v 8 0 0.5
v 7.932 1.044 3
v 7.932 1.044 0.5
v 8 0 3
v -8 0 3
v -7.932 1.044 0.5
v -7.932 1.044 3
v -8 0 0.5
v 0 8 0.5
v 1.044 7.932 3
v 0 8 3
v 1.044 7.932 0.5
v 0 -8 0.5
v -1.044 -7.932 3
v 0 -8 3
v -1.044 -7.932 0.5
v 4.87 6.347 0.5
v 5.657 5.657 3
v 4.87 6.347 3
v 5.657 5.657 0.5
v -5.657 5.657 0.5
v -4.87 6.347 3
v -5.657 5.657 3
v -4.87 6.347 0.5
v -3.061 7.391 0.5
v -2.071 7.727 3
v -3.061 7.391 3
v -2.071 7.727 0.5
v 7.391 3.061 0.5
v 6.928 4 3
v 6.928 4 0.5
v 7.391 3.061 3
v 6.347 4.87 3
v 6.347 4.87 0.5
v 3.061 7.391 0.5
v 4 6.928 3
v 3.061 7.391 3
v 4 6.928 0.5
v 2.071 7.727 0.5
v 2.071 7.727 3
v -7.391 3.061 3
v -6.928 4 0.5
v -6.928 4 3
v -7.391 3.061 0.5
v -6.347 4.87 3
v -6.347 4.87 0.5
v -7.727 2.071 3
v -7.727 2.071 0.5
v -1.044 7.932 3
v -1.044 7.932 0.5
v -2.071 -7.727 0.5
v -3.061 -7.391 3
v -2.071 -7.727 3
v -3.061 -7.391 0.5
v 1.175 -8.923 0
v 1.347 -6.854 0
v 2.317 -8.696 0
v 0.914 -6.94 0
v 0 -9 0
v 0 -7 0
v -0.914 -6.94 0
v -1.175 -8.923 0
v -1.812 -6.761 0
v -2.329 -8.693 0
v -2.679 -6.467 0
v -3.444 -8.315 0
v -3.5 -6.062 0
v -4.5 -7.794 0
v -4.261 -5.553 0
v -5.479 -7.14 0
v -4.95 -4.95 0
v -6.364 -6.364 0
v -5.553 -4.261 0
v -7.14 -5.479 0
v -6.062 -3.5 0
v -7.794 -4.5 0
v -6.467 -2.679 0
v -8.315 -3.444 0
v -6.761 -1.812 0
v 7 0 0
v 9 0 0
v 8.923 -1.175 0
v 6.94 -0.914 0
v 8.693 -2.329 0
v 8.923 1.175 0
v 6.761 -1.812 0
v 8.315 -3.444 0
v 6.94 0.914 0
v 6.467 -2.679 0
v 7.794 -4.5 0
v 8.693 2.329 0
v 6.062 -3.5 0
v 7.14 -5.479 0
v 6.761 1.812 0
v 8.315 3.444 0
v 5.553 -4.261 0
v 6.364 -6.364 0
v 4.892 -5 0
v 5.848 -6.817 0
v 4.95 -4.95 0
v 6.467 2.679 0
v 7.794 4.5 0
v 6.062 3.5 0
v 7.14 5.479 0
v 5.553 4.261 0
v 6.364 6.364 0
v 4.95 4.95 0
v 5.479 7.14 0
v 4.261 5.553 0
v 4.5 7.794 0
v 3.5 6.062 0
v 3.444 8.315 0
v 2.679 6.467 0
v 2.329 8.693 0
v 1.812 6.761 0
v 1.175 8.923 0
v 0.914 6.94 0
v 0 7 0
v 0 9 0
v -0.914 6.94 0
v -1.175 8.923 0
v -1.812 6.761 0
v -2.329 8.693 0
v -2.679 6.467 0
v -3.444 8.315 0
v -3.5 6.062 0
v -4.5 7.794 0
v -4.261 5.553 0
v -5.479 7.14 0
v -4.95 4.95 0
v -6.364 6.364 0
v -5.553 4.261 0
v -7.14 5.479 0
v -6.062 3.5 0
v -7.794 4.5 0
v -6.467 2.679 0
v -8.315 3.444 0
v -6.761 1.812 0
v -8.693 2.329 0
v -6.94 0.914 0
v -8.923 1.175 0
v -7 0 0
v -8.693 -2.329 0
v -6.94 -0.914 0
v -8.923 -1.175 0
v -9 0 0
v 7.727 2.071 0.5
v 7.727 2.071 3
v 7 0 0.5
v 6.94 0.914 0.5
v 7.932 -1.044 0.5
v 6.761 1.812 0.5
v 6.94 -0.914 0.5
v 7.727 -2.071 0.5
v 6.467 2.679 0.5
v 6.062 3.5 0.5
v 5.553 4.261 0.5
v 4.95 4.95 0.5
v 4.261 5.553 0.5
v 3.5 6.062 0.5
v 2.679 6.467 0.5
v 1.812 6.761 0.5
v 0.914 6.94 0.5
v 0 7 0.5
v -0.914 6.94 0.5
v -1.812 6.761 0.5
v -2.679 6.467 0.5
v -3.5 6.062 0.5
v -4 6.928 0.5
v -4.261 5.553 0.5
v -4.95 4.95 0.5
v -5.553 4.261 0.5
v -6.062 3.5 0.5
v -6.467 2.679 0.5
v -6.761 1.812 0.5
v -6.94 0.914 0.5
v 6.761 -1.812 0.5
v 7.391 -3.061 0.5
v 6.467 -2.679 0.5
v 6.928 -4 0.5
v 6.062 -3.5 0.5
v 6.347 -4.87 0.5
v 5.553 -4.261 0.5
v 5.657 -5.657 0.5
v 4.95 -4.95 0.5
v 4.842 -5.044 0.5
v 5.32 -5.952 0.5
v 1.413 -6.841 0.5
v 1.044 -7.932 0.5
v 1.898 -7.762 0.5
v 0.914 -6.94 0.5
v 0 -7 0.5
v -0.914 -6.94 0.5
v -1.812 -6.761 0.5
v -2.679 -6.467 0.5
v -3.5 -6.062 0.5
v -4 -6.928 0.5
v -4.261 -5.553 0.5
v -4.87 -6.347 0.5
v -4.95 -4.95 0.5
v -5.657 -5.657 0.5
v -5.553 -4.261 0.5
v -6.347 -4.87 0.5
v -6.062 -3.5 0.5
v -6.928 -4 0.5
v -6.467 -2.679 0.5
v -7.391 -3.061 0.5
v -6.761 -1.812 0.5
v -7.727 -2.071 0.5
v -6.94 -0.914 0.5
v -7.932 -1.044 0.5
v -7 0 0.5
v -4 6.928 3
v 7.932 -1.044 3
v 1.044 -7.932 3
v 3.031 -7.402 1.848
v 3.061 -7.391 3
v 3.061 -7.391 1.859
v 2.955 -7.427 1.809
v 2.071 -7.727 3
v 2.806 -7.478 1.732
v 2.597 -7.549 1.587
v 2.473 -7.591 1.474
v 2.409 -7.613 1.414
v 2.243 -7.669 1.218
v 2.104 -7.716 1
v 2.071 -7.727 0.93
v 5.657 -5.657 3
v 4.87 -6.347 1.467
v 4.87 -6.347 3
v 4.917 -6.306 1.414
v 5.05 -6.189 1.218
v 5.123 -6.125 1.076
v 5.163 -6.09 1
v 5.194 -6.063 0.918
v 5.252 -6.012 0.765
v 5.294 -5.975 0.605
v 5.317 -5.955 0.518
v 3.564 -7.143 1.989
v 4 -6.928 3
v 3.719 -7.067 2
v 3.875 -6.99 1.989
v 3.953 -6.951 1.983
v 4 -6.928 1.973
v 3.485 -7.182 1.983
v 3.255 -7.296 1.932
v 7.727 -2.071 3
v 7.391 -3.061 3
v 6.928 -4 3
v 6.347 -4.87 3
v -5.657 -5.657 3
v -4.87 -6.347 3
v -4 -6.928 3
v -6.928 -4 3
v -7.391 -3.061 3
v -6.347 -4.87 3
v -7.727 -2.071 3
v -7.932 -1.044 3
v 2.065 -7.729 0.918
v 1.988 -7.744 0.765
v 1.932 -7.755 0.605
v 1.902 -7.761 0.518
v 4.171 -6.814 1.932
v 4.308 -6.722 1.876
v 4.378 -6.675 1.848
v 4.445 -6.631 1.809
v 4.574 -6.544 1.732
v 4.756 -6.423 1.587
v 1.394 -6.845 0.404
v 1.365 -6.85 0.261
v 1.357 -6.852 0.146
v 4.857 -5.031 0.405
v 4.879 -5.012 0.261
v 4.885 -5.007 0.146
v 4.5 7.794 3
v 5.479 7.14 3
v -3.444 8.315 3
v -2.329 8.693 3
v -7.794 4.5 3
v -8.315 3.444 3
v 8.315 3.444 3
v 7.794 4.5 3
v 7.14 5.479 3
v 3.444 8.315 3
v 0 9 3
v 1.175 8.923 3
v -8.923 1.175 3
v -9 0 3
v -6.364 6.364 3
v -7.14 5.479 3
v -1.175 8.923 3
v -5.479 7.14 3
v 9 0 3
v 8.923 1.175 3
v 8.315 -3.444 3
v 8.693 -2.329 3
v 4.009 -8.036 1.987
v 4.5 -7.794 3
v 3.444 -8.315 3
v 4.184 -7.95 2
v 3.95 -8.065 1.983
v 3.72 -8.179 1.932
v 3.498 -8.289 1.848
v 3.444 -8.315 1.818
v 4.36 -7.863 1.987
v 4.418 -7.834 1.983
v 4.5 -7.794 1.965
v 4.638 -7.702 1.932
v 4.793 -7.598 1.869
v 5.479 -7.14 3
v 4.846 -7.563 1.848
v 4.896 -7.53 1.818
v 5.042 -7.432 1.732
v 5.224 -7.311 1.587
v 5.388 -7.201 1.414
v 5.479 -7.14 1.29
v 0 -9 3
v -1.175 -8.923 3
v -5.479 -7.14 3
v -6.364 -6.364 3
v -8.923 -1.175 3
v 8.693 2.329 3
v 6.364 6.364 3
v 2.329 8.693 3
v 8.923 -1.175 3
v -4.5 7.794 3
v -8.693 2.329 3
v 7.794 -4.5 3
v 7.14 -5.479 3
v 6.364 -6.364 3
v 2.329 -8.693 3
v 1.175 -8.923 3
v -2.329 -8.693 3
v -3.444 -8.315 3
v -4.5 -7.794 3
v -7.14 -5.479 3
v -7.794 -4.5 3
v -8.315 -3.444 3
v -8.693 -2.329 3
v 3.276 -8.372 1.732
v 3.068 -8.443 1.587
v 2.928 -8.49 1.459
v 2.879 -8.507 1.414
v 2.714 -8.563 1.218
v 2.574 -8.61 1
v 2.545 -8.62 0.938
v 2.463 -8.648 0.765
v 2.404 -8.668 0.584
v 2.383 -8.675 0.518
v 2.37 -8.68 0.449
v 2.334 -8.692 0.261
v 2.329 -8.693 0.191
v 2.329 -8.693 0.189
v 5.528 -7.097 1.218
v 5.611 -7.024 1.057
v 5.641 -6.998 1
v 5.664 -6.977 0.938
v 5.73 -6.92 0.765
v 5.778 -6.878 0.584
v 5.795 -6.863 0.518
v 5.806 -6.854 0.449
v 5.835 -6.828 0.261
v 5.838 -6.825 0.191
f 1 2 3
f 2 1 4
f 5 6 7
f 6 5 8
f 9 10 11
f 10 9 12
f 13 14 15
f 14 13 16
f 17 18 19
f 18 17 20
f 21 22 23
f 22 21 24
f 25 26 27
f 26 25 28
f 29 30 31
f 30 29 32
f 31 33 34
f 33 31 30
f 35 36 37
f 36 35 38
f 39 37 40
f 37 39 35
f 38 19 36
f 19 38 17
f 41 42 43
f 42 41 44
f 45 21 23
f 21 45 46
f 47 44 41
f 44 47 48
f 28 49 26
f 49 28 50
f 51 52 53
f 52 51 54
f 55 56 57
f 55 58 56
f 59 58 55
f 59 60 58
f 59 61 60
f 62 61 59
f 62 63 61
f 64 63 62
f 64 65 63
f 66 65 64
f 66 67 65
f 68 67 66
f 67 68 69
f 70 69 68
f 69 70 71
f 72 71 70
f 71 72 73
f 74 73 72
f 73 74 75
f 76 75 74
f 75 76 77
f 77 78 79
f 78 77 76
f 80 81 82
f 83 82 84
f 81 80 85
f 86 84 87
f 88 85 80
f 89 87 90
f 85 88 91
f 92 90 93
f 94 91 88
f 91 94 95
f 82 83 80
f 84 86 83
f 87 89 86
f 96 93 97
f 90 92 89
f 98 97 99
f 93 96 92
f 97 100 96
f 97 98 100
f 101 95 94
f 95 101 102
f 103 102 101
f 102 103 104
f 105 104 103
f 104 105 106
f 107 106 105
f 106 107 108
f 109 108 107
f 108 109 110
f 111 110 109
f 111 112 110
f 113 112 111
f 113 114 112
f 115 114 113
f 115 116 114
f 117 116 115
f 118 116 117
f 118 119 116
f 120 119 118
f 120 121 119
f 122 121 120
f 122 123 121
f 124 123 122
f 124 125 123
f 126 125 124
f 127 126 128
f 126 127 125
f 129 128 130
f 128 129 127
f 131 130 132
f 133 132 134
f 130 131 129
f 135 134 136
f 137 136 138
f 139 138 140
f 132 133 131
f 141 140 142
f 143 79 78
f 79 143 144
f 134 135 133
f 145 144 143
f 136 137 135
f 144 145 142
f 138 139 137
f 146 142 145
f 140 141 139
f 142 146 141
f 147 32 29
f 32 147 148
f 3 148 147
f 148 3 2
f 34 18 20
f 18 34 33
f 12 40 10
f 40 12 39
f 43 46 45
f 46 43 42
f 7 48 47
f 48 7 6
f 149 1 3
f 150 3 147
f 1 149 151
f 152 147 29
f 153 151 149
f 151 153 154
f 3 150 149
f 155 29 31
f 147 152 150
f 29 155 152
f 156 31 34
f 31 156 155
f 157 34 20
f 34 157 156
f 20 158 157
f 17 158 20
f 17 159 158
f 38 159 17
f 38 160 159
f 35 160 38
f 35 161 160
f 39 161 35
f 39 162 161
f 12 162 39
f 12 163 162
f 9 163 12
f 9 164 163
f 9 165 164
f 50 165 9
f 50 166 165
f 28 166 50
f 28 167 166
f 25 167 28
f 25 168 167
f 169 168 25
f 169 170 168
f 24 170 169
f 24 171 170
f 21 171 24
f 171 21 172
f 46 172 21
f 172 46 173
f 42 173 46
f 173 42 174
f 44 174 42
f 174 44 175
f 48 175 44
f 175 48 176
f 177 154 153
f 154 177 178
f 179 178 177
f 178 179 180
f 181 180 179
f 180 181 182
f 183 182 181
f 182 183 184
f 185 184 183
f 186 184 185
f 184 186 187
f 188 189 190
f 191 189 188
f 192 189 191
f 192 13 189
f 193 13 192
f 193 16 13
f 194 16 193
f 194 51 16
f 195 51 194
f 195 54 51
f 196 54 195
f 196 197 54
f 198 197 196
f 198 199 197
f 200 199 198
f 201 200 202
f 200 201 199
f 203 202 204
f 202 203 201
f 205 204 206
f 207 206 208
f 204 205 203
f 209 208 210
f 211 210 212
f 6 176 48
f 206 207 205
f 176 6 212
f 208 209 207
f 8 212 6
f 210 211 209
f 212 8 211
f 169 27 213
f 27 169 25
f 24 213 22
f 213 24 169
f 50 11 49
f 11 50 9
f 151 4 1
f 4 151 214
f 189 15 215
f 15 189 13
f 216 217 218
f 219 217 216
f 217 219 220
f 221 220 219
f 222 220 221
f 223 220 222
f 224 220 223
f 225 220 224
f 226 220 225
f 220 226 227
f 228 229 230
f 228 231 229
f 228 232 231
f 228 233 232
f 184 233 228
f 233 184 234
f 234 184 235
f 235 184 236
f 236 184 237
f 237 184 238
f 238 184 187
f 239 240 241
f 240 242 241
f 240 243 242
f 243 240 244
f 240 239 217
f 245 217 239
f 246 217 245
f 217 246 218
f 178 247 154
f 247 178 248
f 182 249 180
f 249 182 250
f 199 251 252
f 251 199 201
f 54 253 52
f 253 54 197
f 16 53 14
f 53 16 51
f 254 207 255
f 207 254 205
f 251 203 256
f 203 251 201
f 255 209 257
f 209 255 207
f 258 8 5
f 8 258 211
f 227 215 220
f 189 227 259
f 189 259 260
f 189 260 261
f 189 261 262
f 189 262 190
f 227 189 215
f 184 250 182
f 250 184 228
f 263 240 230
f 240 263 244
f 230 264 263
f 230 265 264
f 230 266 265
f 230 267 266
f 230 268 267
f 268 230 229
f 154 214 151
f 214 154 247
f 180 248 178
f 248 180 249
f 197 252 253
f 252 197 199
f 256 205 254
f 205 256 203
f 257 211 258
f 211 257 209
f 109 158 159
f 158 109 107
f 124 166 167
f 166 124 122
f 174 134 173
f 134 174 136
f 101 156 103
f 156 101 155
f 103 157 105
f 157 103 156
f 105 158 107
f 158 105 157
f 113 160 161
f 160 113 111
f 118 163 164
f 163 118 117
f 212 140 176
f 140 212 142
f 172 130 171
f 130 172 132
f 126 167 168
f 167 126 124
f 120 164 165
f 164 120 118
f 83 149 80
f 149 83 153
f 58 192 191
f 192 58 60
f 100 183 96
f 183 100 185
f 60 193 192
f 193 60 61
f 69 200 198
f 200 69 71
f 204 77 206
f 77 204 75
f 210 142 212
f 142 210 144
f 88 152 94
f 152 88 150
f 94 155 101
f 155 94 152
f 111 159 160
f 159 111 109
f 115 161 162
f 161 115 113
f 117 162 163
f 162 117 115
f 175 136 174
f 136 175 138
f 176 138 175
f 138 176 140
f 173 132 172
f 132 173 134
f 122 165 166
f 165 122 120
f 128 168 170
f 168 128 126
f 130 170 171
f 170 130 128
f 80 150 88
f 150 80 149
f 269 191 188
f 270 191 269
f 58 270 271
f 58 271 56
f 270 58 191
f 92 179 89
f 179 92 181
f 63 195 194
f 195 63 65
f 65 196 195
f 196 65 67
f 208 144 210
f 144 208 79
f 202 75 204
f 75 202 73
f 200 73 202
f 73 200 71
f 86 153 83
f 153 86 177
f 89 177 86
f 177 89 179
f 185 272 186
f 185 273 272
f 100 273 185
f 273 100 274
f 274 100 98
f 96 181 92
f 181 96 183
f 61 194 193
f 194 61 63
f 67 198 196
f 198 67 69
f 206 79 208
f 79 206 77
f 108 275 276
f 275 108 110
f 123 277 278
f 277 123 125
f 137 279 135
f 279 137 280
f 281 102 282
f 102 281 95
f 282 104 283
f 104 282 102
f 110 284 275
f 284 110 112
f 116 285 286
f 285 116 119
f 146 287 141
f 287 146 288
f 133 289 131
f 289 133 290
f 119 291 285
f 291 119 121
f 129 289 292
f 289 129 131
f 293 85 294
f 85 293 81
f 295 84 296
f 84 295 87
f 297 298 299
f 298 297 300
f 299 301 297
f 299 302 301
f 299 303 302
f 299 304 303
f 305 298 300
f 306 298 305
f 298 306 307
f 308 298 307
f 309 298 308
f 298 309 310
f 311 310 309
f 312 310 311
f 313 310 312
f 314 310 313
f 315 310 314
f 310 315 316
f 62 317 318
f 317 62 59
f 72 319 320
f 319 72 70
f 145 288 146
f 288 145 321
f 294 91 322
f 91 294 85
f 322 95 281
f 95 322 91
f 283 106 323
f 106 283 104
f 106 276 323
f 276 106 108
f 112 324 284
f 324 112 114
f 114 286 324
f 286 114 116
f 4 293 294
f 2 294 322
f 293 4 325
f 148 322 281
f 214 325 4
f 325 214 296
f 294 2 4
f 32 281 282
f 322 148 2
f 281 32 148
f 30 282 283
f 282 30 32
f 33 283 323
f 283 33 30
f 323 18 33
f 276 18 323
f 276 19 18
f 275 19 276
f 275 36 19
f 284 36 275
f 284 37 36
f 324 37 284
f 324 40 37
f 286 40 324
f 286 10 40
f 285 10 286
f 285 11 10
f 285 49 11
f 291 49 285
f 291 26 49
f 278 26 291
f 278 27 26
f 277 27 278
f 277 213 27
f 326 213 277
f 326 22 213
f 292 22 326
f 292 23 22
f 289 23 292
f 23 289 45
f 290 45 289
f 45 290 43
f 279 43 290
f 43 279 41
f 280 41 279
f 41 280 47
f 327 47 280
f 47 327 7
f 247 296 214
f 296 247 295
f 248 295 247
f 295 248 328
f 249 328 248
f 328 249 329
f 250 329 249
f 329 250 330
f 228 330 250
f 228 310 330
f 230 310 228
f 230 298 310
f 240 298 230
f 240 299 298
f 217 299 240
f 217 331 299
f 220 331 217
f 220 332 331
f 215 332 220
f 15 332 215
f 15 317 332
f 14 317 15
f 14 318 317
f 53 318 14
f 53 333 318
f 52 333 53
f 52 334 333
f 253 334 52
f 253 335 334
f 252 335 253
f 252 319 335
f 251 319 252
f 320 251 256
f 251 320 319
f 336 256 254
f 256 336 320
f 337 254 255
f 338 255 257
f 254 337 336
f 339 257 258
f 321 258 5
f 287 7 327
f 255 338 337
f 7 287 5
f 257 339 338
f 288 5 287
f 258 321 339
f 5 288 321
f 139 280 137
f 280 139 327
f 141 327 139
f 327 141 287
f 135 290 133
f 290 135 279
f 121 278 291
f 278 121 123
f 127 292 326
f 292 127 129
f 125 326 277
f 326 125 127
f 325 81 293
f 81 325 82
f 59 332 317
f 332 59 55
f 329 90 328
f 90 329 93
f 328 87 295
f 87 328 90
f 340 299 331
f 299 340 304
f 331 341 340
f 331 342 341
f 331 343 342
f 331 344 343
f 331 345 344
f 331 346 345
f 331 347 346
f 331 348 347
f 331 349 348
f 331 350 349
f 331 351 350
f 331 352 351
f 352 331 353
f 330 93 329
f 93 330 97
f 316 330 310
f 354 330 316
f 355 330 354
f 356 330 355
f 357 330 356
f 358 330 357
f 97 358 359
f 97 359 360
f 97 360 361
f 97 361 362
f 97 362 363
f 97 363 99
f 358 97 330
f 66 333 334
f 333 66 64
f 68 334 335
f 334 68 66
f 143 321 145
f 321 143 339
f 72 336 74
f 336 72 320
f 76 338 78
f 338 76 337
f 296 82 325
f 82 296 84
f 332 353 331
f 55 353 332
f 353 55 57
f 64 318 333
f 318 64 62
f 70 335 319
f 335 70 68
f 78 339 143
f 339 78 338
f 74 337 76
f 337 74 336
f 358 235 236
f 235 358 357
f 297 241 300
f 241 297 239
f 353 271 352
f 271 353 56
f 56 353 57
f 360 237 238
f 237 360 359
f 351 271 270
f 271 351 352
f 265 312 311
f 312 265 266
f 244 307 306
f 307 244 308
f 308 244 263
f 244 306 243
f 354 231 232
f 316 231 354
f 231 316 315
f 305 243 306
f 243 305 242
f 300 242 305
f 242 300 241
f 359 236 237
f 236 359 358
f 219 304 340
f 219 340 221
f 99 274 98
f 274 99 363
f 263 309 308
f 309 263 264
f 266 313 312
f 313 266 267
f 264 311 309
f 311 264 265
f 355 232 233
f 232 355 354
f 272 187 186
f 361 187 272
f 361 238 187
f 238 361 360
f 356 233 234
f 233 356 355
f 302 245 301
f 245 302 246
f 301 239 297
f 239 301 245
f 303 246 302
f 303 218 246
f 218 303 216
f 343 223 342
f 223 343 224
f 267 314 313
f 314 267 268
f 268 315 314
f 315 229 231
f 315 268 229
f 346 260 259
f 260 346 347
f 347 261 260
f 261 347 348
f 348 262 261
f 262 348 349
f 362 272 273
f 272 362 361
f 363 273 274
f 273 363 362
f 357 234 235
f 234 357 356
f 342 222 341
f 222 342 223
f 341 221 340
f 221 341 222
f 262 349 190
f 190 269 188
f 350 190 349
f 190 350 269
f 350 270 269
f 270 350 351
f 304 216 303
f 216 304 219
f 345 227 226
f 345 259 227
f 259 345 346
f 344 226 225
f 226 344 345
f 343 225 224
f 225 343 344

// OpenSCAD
// file: ../build_environments.scad
// build_environments.scad: modules to build level sections
//

module pool(diameter=10.0, wall_height=2.0, step_width=3.0, connections=[])
{
    difference() {
        union() {
        difference() {
            cylinder(h=0.5,r1=diameter+step_width,r2=diameter+step_width,$fn=48);
            translate([0,0,-0.1])
                cylinder(h=0.7,r1=diameter,r2=diameter,$fn=48);
        }
        difference() {
            cylinder(h=wall_height,r1=diameter+step_width+1.0,r2=diameter+step_width+1.0,$fn=48);
            translate([0,0,-0.1])
                cylinder(h=wall_height+0.2,r1=diameter+step_width,r2=diameter+step_width,$fn=48);
        }
        }
    
        for (c = connections)
        {
            rotate([0,90,0]) {
                angle = atan2(c[1],c[0]);
                rotate([-angle,0,0]) {
                    cylinder(h=diameter+5.0,r1=c[2],r2=c[2],$fn=48);
                }
            }
        }
    }
}

module straight(length=10.0, width=2.0, dy1=0.0, dy2=0.0, dz=0.0)
{
    dims = [0, 0, 0, 0, 0, (dz/length)];
    matrix = [
        [ 1, dims[0], dims[1], 0 ],
        [ dims[2], 1, dims[4], 0 ],
        [ dims[5], dims[3], 1, 0 ],
        [ 0, 0, 0, 1 ]
    ];
    multmatrix(matrix)
    difference() {
        translate([dy1,0,0])
        union() {
            rotate([0,90,0]) {
                difference() {
                    cylinder(h=(length-dy1-dy2),r1=width+1.0,r2=width+1.0,$fn=24);
                    translate([0,0,-0.1])
                        cylinder(h=(length-dy1-dy2+0.2),r1=width,r2=width,$fn=24);
                }
                difference() {
                    cylinder(h=1.0,r1=width+2.0,r2=width+2.0,$fn=24);
                    translate([0,0,-0.1])
                        cylinder(h=1.2,r1=width,r2=width,$fn=24);
                }
                translate([0,0,(length-dy1-dy2)-1.0]) {
                    difference() {
                        cylinder(h=1.0,r1=width+2.0,r2=width+2.0,$fn=24);
                        translate([0,0,-0.1])
                            cylinder(h=1.2,r1=width,r2=width,$fn=24);
                    }
                }
            }
        }
        translate([0,0,-(2*width+4.0)/2])
            cube([3*length,3*length,2*width+4.0],center=true);
    }
}

module curve(p0=[0,0], center=[0,0], dir=1, angle=0.0, width=2.0)
{
    radius = sqrt((p0[0]-center[0])*(p0[0]-center[0]) + (p0[1]-center[1])*(p0[1]-center[1]));
    if (dir == 0) {
        difference() {
            rotate([0,0,-90])
            difference() {
                rotate_extrude(angle = angle, convexity = 10, $fn=32)
                    translate([radius, 0, 0])
                        circle(r = width+1.0,$fn=24);
                rotate([0,0,-1.0])
                    rotate_extrude(angle = angle+2.0, convexity = 10, $fn=32)
                        translate([radius, 0, 0])
                            circle(r = width,$fn=24);
            }
            translate([0,0,-(2*width+4.0)/2])
                cube([5*radius,5*radius,2*width+4.0],center=true);
        }
    }
    else {
        difference() {
            rotate([0,0,90])
            difference() {
                rotate_extrude(angle = -angle, convexity = 10, $fn=32)
                    translate([radius, 0, 0])
                        circle(r = width+1.0,$fn=24);
                rotate([0,0,1.0])
                    rotate_extrude(angle = -angle-2.0, convexity = 10, $fn=32)
                        translate([radius, 0, 0])
                            circle(r = width,$fn=24);
            }
            translate([0,0,-(2*width+4.0)/2])
                cube([5*radius,5*radius,2*width+4.0],center=true);
        }
    }

}

// test pool
//pool(diameter=12.0000, wall_height=3.0000, step_width=3.0000, connections=[[0.0000,-26.0000,2.0000], [23.6074,0.0000,2.0000]]);

// test straight, slope
//straight(length=26.0000, width=2.0000, dy1=11.8322, dy2=6.7082, dz=0.0000);
//straight(length=29.1549, width=12.0000, dy1=0.0000, dy2=0.0000, dz=-15.0000);

// test curve
//curve(p0=[23.6074, 0.0000], center=[23.6074, 5.0000], dir=0, angle=60.1011, width=2.0000);
//curve(p0=[33.6426, 12.4219], center=[37.9771, 9.9295], dir=1, angle=120.4627, width=2.0000);
// main file
use <../build_environments.scad>;
pool(diameter=7.0000, wall_height=3.0000, step_width=1.0000, connections=[[10.0000,-19.0000,2.0000]]);
